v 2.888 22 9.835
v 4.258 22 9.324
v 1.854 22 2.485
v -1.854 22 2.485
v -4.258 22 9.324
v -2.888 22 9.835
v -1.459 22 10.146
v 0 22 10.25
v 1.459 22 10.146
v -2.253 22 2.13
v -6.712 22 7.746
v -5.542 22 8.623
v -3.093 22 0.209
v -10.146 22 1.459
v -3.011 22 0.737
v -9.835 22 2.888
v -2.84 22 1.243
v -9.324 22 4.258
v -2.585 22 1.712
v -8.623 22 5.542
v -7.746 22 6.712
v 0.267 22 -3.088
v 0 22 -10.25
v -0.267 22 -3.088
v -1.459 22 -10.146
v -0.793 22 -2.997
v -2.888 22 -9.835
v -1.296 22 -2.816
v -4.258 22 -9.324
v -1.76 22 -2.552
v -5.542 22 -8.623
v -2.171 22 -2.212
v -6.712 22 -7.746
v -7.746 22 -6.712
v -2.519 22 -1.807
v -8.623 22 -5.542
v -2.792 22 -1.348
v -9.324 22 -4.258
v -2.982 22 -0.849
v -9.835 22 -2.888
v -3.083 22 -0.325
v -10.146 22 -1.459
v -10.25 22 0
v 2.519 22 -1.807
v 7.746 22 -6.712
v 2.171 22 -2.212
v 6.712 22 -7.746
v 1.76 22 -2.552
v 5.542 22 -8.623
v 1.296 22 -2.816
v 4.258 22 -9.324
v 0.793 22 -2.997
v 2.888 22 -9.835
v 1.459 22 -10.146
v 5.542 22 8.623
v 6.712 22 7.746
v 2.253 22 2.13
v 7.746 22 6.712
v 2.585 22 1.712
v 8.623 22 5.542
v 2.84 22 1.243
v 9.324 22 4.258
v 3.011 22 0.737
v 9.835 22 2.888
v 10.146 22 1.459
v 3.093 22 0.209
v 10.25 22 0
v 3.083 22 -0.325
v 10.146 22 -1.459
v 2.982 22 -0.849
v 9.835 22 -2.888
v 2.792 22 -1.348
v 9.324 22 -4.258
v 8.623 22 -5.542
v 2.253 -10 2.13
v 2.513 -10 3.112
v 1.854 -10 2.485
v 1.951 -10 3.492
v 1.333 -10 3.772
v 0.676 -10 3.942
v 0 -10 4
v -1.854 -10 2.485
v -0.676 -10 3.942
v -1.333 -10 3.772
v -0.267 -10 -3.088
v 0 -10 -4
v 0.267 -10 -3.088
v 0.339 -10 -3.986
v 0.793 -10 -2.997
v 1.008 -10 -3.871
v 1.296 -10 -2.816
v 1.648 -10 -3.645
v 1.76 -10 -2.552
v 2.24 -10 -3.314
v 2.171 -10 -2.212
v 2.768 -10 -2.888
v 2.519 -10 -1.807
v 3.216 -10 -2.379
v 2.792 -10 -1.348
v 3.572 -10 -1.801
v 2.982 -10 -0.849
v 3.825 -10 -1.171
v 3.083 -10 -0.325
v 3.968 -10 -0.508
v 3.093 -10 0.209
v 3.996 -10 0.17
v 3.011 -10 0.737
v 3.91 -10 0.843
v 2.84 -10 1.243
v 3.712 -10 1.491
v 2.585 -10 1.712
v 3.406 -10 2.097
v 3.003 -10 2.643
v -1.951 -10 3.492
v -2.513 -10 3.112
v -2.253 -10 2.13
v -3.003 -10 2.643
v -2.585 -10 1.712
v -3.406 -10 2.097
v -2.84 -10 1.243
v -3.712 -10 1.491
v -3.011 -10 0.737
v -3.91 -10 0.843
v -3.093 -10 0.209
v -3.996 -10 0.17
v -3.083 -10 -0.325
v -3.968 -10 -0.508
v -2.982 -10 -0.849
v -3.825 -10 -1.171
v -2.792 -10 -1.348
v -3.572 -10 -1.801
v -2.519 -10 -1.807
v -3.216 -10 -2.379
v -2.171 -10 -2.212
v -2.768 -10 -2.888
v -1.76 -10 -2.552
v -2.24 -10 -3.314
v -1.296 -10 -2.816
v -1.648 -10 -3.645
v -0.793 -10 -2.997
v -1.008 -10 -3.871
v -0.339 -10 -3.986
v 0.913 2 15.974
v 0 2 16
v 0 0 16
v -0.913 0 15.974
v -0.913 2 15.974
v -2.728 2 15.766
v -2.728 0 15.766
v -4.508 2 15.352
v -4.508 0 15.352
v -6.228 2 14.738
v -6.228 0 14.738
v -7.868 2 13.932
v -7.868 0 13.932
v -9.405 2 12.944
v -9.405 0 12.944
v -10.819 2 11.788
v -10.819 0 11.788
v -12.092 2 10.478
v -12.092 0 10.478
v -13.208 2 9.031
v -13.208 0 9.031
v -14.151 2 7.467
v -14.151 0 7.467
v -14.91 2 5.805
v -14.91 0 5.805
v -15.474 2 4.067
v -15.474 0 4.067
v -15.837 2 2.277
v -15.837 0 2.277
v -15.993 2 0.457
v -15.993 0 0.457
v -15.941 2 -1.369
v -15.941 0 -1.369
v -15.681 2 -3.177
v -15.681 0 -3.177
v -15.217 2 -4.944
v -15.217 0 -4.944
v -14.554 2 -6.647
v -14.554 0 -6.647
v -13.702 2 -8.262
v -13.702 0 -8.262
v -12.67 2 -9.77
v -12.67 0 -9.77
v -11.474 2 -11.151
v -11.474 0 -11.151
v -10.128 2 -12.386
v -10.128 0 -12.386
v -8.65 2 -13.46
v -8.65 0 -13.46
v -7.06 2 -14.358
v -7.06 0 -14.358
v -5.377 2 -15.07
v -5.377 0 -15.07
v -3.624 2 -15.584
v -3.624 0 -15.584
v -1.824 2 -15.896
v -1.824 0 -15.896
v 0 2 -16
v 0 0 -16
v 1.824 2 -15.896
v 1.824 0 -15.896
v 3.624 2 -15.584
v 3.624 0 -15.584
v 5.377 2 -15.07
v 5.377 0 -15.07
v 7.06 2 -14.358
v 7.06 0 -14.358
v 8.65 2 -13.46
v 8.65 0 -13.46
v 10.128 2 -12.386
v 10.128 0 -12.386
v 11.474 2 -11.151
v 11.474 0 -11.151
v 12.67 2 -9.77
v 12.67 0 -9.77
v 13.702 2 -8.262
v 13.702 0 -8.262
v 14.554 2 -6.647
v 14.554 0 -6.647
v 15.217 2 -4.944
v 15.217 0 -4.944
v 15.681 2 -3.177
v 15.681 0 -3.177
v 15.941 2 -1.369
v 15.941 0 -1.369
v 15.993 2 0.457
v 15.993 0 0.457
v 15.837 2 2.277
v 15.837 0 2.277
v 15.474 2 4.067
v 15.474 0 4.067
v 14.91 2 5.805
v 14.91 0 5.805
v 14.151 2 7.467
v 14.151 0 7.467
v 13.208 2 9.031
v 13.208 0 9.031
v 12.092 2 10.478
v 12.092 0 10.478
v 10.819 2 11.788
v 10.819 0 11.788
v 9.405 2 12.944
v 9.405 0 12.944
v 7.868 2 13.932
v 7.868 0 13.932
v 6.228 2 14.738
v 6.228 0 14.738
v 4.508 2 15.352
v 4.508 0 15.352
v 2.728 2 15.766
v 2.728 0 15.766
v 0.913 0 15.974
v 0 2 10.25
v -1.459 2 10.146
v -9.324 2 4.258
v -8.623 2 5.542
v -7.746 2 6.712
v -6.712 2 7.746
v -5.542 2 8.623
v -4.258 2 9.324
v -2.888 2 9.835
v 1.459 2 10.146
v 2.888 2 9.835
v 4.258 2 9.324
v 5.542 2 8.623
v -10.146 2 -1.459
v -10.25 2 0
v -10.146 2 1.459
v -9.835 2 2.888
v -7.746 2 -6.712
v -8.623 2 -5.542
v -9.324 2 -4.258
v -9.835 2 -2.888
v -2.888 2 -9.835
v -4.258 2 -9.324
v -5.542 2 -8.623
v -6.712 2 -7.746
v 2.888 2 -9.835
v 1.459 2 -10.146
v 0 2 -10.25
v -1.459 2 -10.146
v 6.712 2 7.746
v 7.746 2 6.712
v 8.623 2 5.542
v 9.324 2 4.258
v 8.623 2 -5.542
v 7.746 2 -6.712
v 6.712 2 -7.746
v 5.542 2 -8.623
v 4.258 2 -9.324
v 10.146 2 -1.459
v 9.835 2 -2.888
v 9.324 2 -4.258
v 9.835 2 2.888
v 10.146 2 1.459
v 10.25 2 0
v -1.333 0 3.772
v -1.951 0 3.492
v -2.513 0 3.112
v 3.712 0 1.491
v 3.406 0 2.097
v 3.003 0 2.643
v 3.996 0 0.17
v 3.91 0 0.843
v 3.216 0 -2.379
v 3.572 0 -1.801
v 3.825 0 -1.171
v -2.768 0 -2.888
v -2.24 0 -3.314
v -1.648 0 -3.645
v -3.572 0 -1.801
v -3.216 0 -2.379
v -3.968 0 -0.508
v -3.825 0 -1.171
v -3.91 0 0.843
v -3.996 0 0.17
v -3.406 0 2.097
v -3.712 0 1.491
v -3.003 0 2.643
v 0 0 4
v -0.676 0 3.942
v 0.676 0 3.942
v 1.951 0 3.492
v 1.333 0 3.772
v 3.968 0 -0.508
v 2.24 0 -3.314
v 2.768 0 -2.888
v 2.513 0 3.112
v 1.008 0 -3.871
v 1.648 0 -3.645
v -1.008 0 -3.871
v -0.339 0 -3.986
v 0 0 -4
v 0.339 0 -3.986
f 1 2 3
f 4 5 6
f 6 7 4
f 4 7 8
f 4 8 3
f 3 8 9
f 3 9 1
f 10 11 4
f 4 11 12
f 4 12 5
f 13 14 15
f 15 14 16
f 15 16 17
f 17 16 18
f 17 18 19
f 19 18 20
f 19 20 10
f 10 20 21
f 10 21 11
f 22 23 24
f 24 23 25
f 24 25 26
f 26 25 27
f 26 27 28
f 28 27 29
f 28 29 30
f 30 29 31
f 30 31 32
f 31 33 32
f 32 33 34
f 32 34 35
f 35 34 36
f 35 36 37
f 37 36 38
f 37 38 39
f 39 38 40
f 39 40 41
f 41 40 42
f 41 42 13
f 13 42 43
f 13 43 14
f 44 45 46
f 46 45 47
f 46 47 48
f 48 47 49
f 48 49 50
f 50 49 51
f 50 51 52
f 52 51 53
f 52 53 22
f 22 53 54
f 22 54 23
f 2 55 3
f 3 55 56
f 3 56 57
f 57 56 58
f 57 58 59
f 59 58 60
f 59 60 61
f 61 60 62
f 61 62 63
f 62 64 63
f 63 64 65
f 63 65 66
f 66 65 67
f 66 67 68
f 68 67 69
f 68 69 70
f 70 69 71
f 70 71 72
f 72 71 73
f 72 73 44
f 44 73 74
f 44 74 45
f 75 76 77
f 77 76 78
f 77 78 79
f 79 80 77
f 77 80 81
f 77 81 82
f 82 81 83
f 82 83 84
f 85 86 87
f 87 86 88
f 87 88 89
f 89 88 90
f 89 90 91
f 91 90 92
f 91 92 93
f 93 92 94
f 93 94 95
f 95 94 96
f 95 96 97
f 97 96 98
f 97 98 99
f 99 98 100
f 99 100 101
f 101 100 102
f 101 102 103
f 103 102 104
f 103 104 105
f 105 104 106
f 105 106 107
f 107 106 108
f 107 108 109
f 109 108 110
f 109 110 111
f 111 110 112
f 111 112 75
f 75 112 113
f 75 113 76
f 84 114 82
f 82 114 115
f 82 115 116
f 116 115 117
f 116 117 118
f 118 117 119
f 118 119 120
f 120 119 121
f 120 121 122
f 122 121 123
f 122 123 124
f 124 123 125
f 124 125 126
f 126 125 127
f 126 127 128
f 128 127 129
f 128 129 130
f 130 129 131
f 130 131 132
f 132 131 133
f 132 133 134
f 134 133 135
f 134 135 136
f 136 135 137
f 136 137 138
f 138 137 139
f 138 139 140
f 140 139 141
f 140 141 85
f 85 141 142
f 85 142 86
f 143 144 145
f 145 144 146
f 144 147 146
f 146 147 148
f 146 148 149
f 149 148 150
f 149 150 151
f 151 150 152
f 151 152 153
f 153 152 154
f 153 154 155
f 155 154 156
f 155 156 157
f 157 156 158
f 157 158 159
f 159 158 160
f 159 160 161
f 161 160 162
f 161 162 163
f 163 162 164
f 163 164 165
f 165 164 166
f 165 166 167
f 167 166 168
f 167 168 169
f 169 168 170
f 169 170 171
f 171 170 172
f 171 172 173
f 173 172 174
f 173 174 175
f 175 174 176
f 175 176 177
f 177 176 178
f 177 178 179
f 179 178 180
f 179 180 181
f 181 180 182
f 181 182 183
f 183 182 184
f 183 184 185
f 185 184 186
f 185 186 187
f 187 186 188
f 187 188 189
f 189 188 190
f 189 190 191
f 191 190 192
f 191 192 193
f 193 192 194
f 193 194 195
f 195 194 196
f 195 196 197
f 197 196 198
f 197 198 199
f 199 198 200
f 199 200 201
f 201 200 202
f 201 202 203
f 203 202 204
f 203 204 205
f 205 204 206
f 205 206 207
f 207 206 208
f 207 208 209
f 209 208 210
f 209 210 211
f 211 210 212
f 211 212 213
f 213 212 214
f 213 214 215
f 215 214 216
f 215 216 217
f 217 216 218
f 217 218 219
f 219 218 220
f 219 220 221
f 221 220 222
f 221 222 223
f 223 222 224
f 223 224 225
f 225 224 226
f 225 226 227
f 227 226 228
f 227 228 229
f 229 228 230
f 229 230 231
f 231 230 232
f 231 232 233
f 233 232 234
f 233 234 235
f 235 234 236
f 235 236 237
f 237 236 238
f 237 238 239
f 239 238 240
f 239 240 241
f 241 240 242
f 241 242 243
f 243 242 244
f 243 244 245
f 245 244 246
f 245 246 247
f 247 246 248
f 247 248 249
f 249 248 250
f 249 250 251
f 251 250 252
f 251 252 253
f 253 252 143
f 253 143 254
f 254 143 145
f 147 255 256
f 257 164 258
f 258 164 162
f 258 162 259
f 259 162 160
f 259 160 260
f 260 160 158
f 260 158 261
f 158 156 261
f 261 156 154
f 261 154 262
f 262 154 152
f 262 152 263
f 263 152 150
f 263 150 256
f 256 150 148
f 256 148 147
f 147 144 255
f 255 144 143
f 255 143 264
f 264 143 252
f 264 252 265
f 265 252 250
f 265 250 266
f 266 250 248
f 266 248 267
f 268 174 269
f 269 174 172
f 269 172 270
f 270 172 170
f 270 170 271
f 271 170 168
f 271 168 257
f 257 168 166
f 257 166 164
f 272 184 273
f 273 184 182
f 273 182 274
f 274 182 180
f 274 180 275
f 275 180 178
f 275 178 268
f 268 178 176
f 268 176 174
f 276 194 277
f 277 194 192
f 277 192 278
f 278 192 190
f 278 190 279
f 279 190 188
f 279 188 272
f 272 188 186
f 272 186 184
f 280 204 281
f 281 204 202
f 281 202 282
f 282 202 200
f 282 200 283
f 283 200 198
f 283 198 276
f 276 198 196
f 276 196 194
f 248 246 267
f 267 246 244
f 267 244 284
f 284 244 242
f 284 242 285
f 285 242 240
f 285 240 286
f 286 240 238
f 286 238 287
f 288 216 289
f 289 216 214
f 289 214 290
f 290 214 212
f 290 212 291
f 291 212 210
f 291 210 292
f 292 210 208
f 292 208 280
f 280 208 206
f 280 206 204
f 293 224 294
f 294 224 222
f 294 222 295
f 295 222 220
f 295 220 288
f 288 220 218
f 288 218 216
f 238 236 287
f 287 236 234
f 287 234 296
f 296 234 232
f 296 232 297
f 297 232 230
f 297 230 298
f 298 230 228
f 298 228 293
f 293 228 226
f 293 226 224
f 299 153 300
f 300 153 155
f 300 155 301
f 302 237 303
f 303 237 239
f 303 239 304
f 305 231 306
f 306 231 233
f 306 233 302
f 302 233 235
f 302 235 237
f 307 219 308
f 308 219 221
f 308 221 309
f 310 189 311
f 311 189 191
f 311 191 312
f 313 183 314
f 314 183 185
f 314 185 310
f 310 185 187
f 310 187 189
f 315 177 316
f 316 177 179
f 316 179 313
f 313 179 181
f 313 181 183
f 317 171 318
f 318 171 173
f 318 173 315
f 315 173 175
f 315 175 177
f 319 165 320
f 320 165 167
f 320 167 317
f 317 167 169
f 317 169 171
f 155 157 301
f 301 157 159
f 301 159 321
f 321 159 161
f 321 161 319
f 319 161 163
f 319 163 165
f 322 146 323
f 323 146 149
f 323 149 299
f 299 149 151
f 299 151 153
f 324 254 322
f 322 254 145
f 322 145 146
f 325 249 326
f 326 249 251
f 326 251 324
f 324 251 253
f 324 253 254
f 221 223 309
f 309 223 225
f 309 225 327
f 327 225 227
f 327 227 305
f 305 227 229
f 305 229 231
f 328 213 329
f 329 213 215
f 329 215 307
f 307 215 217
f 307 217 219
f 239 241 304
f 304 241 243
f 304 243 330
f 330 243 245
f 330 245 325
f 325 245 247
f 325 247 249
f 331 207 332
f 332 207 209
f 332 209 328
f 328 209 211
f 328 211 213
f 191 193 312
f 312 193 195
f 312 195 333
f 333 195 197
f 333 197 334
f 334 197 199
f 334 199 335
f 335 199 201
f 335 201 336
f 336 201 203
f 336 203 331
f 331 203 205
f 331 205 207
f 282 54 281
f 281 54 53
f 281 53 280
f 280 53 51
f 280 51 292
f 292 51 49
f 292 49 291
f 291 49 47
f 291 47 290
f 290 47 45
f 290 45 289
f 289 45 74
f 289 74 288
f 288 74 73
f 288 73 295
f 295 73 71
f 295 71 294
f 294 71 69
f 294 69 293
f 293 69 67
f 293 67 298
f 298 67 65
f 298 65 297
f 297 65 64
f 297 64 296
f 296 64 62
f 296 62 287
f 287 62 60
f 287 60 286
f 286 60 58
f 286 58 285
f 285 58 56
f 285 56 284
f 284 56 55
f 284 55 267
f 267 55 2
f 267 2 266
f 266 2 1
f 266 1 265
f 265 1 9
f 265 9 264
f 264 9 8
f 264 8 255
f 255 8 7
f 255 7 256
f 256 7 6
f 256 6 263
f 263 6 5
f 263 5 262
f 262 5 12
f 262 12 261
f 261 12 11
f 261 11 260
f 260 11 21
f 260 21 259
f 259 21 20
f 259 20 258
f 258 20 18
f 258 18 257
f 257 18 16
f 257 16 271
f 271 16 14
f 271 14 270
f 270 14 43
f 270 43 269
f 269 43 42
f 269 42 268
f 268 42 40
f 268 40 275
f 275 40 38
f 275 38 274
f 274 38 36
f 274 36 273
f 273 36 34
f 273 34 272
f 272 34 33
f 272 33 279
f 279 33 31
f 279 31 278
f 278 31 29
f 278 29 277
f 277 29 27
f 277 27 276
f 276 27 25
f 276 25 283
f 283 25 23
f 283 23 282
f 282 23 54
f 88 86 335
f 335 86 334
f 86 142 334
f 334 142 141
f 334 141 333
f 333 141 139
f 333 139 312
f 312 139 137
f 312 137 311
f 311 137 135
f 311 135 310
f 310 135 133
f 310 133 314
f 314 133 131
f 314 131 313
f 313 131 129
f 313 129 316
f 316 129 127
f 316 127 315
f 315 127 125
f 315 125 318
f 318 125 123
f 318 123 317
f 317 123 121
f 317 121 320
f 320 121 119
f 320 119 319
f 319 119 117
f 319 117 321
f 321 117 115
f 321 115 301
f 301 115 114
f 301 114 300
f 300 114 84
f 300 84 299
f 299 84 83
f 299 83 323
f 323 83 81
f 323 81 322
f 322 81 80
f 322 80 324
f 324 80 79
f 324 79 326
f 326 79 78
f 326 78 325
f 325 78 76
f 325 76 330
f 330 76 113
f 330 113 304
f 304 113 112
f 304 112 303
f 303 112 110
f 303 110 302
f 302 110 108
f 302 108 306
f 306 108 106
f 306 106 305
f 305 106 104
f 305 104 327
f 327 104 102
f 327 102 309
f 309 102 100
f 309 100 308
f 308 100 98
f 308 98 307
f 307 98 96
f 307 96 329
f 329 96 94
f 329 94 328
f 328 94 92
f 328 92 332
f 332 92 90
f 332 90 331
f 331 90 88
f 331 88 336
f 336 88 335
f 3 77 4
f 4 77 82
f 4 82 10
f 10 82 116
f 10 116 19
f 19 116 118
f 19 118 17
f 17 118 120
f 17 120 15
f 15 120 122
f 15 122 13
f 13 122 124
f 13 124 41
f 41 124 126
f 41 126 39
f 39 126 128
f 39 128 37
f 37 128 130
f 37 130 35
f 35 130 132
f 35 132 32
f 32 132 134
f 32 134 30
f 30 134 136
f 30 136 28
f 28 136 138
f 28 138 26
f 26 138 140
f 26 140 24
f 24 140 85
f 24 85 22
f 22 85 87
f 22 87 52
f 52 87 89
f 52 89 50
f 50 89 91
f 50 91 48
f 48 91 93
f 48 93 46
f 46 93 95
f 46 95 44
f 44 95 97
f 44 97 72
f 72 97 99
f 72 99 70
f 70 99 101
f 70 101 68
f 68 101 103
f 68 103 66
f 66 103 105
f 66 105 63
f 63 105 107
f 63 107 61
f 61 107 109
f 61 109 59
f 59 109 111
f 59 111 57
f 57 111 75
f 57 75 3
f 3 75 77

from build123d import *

# Parameters (mm, degrees)
SKETCH1_R               = 16
BOSS_EXTRUDE1_DEPTH     = 2
SKETCH2_R               = 10.25
BOSS_EXTRUDE2_DEPTH     = 20
SKETCH4_R               = 4
BOSS_EXTRUDE3_DEPTH     = 10
CUT_EXTRUDE1_DEPTH      = 32.559467676
CUT_EXTRUDE1_DEPTH_BACK = 32.559467676


with BuildPart() as part:
    # Sketch1 → Boss-Extrude1 (new body)
    with BuildSketch(Plane(origin=(0, 0, 0), x_dir=(1, 0, 0), z_dir=(0, 1, 0))):
        with Locations(Location((0, 0, 0), (0, 0, 270))):
            Circle(SKETCH1_R)
    extrude(amount=BOSS_EXTRUDE1_DEPTH)

    # Sketch2 → Boss-Extrude2 (add)
    with BuildSketch(Plane(origin=(0, 2, 0), x_dir=(1, 0, 0), z_dir=(0, 1, 0))):
        with Locations(Location((0, 0, 0), (0, 0, 270))):
            Circle(SKETCH2_R)
    extrude(amount=BOSS_EXTRUDE2_DEPTH)

    # Sketch4 → Boss-Extrude3 (add)
    with BuildSketch(Plane.XZ):
        with Locations(Location((0, 0, 0), (0, 0, 270))):
            Circle(SKETCH4_R)
    extrude(amount=BOSS_EXTRUDE3_DEPTH)

    # Sketch3 → Cut-Extrude1 (cut, two sides: drawn at the far end of the back side and taken through both)
    with BuildSketch(Plane.XZ.offset(-CUT_EXTRUDE1_DEPTH_BACK)):
        with BuildLine():
            Line((0, 2.484658643), (0, -3.1))
            ThreePointArc((0, -3.1), (2.192031022, -2.192031022), (3.1, 0))
            ThreePointArc((3.1, 0), (2.770983027, 1.389839223), (1.853772215, 2.484658643))
            Line((1.853772215, 2.484658643), (0, 2.484658643))
        make_face()
        with BuildLine():
            ThreePointArc((-1.853772215, 2.484658643), (-2.942145628, -0.976616149), (0, -3.1))
            Line((0, -3.1), (0, 2.484658643))
            Line((0, 2.484658643), (-1.853772215, 2.484658643))
        make_face()
    extrude(amount=CUT_EXTRUDE1_DEPTH + CUT_EXTRUDE1_DEPTH_BACK, mode=Mode.SUBTRACT)


solid = part.part
